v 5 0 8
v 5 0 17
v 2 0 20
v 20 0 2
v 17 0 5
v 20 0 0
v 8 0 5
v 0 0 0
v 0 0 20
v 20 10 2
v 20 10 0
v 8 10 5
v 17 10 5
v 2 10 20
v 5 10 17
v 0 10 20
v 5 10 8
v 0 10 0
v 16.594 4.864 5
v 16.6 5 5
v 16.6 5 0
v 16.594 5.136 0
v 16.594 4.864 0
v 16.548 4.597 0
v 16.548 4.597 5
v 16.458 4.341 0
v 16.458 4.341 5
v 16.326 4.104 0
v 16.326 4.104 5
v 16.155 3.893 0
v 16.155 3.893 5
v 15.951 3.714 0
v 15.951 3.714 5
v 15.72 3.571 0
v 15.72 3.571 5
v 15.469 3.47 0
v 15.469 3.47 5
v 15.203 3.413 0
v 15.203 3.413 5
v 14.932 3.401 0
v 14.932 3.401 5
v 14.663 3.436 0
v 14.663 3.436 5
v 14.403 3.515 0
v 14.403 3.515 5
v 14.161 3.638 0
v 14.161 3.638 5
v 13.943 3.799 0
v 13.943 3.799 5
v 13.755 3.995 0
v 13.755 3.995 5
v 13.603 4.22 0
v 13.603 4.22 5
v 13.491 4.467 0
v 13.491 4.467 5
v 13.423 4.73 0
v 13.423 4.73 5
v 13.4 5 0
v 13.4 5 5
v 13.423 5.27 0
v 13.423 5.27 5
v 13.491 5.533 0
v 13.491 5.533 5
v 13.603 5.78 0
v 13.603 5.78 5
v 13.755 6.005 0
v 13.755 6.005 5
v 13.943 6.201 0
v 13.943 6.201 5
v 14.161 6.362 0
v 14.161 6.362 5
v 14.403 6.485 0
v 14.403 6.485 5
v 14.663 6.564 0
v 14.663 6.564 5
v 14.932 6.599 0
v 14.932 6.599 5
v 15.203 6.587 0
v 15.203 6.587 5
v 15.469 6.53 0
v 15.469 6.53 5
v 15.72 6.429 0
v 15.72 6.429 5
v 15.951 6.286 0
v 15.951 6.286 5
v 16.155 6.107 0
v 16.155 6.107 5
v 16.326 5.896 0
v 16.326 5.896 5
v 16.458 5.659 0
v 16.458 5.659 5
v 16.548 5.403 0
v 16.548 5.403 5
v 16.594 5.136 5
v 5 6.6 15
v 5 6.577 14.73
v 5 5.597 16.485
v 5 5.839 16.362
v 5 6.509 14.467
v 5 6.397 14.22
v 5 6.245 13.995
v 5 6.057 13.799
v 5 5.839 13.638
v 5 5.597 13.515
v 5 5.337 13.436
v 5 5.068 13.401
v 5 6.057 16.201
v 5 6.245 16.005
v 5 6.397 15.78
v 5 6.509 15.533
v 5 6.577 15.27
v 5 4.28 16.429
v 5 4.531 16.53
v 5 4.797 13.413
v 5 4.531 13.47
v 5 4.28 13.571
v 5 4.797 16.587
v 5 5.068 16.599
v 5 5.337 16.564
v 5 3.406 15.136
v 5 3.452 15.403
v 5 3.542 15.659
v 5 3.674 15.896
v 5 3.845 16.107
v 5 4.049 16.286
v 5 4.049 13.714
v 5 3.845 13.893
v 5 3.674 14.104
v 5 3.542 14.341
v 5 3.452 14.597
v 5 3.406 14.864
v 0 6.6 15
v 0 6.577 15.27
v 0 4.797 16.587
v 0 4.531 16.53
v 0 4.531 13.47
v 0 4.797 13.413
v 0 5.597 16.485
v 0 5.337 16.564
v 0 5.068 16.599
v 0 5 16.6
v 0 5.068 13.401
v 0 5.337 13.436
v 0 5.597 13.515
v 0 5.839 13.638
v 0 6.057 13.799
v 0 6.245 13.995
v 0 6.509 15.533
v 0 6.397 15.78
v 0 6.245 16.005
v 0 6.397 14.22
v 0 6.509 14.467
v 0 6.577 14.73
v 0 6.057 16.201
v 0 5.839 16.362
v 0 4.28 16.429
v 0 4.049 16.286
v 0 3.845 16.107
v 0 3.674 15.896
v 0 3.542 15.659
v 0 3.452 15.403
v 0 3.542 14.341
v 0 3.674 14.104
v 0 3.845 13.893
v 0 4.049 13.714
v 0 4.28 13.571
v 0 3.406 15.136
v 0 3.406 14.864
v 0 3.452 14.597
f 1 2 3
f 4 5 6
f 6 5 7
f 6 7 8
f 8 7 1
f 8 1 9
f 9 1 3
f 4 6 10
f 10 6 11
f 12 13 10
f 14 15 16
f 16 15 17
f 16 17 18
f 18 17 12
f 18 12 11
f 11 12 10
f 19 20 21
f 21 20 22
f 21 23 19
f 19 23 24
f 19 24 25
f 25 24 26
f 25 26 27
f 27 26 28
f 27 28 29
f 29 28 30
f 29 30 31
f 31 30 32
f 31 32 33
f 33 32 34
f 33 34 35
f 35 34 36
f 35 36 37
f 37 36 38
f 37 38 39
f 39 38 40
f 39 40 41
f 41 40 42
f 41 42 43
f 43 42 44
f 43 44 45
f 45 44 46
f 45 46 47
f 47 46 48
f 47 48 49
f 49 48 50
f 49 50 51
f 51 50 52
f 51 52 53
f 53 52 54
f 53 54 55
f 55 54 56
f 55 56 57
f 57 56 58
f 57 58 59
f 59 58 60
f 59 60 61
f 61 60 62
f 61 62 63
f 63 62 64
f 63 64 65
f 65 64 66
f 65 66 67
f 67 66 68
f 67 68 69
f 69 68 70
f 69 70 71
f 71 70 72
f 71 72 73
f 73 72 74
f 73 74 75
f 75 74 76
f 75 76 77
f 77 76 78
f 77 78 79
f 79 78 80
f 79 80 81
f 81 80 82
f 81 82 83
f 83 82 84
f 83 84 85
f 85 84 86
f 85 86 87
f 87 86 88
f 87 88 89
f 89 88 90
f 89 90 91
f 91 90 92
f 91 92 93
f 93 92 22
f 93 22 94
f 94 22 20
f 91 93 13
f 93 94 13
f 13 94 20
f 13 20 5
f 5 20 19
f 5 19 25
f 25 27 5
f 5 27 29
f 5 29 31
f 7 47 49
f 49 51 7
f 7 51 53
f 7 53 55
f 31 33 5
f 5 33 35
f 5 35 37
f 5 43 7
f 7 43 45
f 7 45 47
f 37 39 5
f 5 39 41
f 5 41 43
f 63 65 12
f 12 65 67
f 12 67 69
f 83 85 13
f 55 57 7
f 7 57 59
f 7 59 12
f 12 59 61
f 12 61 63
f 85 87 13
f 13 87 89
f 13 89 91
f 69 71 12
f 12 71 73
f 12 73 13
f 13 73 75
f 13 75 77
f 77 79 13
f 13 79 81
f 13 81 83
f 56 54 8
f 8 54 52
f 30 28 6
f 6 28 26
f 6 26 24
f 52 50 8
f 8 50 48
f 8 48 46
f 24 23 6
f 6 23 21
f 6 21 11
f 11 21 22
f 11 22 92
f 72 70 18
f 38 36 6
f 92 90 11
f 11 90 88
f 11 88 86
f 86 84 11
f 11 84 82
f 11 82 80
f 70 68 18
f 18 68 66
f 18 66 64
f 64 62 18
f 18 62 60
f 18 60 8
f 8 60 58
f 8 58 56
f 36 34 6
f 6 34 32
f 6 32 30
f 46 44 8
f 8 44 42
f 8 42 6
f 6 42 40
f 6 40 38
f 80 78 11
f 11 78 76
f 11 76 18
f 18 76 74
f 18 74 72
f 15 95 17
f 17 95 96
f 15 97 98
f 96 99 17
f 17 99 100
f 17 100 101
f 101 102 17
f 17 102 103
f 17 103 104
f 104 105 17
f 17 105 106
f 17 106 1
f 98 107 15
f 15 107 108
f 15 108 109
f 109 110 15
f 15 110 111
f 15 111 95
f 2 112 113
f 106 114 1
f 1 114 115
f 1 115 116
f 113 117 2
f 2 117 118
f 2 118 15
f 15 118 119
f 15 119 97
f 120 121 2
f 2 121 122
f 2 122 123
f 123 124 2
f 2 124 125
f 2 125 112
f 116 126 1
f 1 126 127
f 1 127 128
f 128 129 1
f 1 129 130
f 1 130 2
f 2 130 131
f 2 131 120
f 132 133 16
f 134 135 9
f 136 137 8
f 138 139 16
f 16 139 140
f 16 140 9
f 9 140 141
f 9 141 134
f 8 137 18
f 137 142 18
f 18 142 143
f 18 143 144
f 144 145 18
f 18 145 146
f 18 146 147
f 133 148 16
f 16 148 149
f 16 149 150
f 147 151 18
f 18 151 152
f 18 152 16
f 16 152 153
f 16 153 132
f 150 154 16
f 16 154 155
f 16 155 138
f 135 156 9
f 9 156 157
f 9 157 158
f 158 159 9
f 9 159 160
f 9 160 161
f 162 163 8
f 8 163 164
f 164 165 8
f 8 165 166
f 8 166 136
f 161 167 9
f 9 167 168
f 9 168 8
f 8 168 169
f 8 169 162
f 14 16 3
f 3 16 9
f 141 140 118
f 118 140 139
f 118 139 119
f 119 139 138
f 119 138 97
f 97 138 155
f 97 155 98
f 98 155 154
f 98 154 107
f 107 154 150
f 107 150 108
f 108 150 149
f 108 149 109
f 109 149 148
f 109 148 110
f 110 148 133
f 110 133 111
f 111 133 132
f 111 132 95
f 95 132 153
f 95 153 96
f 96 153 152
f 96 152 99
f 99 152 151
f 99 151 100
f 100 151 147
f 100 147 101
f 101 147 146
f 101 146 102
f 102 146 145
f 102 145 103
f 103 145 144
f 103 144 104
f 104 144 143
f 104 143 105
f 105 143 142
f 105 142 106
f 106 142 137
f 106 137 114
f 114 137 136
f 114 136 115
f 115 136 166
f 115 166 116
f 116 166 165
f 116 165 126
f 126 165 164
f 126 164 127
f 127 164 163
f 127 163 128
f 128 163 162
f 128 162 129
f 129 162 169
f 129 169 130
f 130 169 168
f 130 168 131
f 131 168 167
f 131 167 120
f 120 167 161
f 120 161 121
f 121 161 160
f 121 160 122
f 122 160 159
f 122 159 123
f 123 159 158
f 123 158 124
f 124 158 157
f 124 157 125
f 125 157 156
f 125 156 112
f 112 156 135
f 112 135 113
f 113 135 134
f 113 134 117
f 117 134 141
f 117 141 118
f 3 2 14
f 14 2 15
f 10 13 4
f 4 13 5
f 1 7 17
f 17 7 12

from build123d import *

# Parameters (mm, degrees)
SKIZZE1_W                       = 15
SKIZZE1_H                       = 10
SKIZZE1_R                       = 1.6
AUFSATZ_LINEAR_AUSTRAGEN1_DEPTH = 5
SKIZZE1_9_W                     = 5
SKIZZE1_9_H                     = 10
AUFSATZ_LINEAR_AUSTRAGEN2_DEPTH = 20
SKIZZE3_R                       = 1.6
SCHNITT_LINEAR_AUSTRAGEN2_DEPTH = 20
FASE2_SIZE                      = 3


with BuildPart() as part:
    # Skizze1 → Aufsatz-Linear austragen1 (new body)
    with BuildSketch(Plane.XY):
        with Locations((12.5, 5)):
            Rectangle(SKIZZE1_W, SKIZZE1_H)
        with Locations((15, 5)):
            Circle(SKIZZE1_R, mode=Mode.SUBTRACT)
    extrude(amount=AUFSATZ_LINEAR_AUSTRAGEN1_DEPTH)

    # Skizze1<9> → Aufsatz-Linear austragen2 (add)
    with BuildSketch(Plane.XY):
        with Locations((2.5, 5)):
            Rectangle(SKIZZE1_9_W, SKIZZE1_9_H)
    extrude(amount=AUFSATZ_LINEAR_AUSTRAGEN2_DEPTH)

    # Skizze3 → Schnitt-Linear austragen2 (cut)
    with BuildSketch(Plane(origin=(5, 0, 0), x_dir=(0, 0, -1), z_dir=(1, 0, 0))):
        with Locations((-15, 5)):
            Circle(SKIZZE3_R)
    extrude(amount=-SCHNITT_LINEAR_AUSTRAGEN2_DEPTH, mode=Mode.SUBTRACT)

    # Fase2
    fase2_edges = [part.edges().sort_by_distance(p)[0] for p in [
        (5, 5, 20),
        (20, 5, 5),
        (5, 5, 5),
    ]]
    chamfer(fase2_edges, length=FASE2_SIZE)


solid = part.part
